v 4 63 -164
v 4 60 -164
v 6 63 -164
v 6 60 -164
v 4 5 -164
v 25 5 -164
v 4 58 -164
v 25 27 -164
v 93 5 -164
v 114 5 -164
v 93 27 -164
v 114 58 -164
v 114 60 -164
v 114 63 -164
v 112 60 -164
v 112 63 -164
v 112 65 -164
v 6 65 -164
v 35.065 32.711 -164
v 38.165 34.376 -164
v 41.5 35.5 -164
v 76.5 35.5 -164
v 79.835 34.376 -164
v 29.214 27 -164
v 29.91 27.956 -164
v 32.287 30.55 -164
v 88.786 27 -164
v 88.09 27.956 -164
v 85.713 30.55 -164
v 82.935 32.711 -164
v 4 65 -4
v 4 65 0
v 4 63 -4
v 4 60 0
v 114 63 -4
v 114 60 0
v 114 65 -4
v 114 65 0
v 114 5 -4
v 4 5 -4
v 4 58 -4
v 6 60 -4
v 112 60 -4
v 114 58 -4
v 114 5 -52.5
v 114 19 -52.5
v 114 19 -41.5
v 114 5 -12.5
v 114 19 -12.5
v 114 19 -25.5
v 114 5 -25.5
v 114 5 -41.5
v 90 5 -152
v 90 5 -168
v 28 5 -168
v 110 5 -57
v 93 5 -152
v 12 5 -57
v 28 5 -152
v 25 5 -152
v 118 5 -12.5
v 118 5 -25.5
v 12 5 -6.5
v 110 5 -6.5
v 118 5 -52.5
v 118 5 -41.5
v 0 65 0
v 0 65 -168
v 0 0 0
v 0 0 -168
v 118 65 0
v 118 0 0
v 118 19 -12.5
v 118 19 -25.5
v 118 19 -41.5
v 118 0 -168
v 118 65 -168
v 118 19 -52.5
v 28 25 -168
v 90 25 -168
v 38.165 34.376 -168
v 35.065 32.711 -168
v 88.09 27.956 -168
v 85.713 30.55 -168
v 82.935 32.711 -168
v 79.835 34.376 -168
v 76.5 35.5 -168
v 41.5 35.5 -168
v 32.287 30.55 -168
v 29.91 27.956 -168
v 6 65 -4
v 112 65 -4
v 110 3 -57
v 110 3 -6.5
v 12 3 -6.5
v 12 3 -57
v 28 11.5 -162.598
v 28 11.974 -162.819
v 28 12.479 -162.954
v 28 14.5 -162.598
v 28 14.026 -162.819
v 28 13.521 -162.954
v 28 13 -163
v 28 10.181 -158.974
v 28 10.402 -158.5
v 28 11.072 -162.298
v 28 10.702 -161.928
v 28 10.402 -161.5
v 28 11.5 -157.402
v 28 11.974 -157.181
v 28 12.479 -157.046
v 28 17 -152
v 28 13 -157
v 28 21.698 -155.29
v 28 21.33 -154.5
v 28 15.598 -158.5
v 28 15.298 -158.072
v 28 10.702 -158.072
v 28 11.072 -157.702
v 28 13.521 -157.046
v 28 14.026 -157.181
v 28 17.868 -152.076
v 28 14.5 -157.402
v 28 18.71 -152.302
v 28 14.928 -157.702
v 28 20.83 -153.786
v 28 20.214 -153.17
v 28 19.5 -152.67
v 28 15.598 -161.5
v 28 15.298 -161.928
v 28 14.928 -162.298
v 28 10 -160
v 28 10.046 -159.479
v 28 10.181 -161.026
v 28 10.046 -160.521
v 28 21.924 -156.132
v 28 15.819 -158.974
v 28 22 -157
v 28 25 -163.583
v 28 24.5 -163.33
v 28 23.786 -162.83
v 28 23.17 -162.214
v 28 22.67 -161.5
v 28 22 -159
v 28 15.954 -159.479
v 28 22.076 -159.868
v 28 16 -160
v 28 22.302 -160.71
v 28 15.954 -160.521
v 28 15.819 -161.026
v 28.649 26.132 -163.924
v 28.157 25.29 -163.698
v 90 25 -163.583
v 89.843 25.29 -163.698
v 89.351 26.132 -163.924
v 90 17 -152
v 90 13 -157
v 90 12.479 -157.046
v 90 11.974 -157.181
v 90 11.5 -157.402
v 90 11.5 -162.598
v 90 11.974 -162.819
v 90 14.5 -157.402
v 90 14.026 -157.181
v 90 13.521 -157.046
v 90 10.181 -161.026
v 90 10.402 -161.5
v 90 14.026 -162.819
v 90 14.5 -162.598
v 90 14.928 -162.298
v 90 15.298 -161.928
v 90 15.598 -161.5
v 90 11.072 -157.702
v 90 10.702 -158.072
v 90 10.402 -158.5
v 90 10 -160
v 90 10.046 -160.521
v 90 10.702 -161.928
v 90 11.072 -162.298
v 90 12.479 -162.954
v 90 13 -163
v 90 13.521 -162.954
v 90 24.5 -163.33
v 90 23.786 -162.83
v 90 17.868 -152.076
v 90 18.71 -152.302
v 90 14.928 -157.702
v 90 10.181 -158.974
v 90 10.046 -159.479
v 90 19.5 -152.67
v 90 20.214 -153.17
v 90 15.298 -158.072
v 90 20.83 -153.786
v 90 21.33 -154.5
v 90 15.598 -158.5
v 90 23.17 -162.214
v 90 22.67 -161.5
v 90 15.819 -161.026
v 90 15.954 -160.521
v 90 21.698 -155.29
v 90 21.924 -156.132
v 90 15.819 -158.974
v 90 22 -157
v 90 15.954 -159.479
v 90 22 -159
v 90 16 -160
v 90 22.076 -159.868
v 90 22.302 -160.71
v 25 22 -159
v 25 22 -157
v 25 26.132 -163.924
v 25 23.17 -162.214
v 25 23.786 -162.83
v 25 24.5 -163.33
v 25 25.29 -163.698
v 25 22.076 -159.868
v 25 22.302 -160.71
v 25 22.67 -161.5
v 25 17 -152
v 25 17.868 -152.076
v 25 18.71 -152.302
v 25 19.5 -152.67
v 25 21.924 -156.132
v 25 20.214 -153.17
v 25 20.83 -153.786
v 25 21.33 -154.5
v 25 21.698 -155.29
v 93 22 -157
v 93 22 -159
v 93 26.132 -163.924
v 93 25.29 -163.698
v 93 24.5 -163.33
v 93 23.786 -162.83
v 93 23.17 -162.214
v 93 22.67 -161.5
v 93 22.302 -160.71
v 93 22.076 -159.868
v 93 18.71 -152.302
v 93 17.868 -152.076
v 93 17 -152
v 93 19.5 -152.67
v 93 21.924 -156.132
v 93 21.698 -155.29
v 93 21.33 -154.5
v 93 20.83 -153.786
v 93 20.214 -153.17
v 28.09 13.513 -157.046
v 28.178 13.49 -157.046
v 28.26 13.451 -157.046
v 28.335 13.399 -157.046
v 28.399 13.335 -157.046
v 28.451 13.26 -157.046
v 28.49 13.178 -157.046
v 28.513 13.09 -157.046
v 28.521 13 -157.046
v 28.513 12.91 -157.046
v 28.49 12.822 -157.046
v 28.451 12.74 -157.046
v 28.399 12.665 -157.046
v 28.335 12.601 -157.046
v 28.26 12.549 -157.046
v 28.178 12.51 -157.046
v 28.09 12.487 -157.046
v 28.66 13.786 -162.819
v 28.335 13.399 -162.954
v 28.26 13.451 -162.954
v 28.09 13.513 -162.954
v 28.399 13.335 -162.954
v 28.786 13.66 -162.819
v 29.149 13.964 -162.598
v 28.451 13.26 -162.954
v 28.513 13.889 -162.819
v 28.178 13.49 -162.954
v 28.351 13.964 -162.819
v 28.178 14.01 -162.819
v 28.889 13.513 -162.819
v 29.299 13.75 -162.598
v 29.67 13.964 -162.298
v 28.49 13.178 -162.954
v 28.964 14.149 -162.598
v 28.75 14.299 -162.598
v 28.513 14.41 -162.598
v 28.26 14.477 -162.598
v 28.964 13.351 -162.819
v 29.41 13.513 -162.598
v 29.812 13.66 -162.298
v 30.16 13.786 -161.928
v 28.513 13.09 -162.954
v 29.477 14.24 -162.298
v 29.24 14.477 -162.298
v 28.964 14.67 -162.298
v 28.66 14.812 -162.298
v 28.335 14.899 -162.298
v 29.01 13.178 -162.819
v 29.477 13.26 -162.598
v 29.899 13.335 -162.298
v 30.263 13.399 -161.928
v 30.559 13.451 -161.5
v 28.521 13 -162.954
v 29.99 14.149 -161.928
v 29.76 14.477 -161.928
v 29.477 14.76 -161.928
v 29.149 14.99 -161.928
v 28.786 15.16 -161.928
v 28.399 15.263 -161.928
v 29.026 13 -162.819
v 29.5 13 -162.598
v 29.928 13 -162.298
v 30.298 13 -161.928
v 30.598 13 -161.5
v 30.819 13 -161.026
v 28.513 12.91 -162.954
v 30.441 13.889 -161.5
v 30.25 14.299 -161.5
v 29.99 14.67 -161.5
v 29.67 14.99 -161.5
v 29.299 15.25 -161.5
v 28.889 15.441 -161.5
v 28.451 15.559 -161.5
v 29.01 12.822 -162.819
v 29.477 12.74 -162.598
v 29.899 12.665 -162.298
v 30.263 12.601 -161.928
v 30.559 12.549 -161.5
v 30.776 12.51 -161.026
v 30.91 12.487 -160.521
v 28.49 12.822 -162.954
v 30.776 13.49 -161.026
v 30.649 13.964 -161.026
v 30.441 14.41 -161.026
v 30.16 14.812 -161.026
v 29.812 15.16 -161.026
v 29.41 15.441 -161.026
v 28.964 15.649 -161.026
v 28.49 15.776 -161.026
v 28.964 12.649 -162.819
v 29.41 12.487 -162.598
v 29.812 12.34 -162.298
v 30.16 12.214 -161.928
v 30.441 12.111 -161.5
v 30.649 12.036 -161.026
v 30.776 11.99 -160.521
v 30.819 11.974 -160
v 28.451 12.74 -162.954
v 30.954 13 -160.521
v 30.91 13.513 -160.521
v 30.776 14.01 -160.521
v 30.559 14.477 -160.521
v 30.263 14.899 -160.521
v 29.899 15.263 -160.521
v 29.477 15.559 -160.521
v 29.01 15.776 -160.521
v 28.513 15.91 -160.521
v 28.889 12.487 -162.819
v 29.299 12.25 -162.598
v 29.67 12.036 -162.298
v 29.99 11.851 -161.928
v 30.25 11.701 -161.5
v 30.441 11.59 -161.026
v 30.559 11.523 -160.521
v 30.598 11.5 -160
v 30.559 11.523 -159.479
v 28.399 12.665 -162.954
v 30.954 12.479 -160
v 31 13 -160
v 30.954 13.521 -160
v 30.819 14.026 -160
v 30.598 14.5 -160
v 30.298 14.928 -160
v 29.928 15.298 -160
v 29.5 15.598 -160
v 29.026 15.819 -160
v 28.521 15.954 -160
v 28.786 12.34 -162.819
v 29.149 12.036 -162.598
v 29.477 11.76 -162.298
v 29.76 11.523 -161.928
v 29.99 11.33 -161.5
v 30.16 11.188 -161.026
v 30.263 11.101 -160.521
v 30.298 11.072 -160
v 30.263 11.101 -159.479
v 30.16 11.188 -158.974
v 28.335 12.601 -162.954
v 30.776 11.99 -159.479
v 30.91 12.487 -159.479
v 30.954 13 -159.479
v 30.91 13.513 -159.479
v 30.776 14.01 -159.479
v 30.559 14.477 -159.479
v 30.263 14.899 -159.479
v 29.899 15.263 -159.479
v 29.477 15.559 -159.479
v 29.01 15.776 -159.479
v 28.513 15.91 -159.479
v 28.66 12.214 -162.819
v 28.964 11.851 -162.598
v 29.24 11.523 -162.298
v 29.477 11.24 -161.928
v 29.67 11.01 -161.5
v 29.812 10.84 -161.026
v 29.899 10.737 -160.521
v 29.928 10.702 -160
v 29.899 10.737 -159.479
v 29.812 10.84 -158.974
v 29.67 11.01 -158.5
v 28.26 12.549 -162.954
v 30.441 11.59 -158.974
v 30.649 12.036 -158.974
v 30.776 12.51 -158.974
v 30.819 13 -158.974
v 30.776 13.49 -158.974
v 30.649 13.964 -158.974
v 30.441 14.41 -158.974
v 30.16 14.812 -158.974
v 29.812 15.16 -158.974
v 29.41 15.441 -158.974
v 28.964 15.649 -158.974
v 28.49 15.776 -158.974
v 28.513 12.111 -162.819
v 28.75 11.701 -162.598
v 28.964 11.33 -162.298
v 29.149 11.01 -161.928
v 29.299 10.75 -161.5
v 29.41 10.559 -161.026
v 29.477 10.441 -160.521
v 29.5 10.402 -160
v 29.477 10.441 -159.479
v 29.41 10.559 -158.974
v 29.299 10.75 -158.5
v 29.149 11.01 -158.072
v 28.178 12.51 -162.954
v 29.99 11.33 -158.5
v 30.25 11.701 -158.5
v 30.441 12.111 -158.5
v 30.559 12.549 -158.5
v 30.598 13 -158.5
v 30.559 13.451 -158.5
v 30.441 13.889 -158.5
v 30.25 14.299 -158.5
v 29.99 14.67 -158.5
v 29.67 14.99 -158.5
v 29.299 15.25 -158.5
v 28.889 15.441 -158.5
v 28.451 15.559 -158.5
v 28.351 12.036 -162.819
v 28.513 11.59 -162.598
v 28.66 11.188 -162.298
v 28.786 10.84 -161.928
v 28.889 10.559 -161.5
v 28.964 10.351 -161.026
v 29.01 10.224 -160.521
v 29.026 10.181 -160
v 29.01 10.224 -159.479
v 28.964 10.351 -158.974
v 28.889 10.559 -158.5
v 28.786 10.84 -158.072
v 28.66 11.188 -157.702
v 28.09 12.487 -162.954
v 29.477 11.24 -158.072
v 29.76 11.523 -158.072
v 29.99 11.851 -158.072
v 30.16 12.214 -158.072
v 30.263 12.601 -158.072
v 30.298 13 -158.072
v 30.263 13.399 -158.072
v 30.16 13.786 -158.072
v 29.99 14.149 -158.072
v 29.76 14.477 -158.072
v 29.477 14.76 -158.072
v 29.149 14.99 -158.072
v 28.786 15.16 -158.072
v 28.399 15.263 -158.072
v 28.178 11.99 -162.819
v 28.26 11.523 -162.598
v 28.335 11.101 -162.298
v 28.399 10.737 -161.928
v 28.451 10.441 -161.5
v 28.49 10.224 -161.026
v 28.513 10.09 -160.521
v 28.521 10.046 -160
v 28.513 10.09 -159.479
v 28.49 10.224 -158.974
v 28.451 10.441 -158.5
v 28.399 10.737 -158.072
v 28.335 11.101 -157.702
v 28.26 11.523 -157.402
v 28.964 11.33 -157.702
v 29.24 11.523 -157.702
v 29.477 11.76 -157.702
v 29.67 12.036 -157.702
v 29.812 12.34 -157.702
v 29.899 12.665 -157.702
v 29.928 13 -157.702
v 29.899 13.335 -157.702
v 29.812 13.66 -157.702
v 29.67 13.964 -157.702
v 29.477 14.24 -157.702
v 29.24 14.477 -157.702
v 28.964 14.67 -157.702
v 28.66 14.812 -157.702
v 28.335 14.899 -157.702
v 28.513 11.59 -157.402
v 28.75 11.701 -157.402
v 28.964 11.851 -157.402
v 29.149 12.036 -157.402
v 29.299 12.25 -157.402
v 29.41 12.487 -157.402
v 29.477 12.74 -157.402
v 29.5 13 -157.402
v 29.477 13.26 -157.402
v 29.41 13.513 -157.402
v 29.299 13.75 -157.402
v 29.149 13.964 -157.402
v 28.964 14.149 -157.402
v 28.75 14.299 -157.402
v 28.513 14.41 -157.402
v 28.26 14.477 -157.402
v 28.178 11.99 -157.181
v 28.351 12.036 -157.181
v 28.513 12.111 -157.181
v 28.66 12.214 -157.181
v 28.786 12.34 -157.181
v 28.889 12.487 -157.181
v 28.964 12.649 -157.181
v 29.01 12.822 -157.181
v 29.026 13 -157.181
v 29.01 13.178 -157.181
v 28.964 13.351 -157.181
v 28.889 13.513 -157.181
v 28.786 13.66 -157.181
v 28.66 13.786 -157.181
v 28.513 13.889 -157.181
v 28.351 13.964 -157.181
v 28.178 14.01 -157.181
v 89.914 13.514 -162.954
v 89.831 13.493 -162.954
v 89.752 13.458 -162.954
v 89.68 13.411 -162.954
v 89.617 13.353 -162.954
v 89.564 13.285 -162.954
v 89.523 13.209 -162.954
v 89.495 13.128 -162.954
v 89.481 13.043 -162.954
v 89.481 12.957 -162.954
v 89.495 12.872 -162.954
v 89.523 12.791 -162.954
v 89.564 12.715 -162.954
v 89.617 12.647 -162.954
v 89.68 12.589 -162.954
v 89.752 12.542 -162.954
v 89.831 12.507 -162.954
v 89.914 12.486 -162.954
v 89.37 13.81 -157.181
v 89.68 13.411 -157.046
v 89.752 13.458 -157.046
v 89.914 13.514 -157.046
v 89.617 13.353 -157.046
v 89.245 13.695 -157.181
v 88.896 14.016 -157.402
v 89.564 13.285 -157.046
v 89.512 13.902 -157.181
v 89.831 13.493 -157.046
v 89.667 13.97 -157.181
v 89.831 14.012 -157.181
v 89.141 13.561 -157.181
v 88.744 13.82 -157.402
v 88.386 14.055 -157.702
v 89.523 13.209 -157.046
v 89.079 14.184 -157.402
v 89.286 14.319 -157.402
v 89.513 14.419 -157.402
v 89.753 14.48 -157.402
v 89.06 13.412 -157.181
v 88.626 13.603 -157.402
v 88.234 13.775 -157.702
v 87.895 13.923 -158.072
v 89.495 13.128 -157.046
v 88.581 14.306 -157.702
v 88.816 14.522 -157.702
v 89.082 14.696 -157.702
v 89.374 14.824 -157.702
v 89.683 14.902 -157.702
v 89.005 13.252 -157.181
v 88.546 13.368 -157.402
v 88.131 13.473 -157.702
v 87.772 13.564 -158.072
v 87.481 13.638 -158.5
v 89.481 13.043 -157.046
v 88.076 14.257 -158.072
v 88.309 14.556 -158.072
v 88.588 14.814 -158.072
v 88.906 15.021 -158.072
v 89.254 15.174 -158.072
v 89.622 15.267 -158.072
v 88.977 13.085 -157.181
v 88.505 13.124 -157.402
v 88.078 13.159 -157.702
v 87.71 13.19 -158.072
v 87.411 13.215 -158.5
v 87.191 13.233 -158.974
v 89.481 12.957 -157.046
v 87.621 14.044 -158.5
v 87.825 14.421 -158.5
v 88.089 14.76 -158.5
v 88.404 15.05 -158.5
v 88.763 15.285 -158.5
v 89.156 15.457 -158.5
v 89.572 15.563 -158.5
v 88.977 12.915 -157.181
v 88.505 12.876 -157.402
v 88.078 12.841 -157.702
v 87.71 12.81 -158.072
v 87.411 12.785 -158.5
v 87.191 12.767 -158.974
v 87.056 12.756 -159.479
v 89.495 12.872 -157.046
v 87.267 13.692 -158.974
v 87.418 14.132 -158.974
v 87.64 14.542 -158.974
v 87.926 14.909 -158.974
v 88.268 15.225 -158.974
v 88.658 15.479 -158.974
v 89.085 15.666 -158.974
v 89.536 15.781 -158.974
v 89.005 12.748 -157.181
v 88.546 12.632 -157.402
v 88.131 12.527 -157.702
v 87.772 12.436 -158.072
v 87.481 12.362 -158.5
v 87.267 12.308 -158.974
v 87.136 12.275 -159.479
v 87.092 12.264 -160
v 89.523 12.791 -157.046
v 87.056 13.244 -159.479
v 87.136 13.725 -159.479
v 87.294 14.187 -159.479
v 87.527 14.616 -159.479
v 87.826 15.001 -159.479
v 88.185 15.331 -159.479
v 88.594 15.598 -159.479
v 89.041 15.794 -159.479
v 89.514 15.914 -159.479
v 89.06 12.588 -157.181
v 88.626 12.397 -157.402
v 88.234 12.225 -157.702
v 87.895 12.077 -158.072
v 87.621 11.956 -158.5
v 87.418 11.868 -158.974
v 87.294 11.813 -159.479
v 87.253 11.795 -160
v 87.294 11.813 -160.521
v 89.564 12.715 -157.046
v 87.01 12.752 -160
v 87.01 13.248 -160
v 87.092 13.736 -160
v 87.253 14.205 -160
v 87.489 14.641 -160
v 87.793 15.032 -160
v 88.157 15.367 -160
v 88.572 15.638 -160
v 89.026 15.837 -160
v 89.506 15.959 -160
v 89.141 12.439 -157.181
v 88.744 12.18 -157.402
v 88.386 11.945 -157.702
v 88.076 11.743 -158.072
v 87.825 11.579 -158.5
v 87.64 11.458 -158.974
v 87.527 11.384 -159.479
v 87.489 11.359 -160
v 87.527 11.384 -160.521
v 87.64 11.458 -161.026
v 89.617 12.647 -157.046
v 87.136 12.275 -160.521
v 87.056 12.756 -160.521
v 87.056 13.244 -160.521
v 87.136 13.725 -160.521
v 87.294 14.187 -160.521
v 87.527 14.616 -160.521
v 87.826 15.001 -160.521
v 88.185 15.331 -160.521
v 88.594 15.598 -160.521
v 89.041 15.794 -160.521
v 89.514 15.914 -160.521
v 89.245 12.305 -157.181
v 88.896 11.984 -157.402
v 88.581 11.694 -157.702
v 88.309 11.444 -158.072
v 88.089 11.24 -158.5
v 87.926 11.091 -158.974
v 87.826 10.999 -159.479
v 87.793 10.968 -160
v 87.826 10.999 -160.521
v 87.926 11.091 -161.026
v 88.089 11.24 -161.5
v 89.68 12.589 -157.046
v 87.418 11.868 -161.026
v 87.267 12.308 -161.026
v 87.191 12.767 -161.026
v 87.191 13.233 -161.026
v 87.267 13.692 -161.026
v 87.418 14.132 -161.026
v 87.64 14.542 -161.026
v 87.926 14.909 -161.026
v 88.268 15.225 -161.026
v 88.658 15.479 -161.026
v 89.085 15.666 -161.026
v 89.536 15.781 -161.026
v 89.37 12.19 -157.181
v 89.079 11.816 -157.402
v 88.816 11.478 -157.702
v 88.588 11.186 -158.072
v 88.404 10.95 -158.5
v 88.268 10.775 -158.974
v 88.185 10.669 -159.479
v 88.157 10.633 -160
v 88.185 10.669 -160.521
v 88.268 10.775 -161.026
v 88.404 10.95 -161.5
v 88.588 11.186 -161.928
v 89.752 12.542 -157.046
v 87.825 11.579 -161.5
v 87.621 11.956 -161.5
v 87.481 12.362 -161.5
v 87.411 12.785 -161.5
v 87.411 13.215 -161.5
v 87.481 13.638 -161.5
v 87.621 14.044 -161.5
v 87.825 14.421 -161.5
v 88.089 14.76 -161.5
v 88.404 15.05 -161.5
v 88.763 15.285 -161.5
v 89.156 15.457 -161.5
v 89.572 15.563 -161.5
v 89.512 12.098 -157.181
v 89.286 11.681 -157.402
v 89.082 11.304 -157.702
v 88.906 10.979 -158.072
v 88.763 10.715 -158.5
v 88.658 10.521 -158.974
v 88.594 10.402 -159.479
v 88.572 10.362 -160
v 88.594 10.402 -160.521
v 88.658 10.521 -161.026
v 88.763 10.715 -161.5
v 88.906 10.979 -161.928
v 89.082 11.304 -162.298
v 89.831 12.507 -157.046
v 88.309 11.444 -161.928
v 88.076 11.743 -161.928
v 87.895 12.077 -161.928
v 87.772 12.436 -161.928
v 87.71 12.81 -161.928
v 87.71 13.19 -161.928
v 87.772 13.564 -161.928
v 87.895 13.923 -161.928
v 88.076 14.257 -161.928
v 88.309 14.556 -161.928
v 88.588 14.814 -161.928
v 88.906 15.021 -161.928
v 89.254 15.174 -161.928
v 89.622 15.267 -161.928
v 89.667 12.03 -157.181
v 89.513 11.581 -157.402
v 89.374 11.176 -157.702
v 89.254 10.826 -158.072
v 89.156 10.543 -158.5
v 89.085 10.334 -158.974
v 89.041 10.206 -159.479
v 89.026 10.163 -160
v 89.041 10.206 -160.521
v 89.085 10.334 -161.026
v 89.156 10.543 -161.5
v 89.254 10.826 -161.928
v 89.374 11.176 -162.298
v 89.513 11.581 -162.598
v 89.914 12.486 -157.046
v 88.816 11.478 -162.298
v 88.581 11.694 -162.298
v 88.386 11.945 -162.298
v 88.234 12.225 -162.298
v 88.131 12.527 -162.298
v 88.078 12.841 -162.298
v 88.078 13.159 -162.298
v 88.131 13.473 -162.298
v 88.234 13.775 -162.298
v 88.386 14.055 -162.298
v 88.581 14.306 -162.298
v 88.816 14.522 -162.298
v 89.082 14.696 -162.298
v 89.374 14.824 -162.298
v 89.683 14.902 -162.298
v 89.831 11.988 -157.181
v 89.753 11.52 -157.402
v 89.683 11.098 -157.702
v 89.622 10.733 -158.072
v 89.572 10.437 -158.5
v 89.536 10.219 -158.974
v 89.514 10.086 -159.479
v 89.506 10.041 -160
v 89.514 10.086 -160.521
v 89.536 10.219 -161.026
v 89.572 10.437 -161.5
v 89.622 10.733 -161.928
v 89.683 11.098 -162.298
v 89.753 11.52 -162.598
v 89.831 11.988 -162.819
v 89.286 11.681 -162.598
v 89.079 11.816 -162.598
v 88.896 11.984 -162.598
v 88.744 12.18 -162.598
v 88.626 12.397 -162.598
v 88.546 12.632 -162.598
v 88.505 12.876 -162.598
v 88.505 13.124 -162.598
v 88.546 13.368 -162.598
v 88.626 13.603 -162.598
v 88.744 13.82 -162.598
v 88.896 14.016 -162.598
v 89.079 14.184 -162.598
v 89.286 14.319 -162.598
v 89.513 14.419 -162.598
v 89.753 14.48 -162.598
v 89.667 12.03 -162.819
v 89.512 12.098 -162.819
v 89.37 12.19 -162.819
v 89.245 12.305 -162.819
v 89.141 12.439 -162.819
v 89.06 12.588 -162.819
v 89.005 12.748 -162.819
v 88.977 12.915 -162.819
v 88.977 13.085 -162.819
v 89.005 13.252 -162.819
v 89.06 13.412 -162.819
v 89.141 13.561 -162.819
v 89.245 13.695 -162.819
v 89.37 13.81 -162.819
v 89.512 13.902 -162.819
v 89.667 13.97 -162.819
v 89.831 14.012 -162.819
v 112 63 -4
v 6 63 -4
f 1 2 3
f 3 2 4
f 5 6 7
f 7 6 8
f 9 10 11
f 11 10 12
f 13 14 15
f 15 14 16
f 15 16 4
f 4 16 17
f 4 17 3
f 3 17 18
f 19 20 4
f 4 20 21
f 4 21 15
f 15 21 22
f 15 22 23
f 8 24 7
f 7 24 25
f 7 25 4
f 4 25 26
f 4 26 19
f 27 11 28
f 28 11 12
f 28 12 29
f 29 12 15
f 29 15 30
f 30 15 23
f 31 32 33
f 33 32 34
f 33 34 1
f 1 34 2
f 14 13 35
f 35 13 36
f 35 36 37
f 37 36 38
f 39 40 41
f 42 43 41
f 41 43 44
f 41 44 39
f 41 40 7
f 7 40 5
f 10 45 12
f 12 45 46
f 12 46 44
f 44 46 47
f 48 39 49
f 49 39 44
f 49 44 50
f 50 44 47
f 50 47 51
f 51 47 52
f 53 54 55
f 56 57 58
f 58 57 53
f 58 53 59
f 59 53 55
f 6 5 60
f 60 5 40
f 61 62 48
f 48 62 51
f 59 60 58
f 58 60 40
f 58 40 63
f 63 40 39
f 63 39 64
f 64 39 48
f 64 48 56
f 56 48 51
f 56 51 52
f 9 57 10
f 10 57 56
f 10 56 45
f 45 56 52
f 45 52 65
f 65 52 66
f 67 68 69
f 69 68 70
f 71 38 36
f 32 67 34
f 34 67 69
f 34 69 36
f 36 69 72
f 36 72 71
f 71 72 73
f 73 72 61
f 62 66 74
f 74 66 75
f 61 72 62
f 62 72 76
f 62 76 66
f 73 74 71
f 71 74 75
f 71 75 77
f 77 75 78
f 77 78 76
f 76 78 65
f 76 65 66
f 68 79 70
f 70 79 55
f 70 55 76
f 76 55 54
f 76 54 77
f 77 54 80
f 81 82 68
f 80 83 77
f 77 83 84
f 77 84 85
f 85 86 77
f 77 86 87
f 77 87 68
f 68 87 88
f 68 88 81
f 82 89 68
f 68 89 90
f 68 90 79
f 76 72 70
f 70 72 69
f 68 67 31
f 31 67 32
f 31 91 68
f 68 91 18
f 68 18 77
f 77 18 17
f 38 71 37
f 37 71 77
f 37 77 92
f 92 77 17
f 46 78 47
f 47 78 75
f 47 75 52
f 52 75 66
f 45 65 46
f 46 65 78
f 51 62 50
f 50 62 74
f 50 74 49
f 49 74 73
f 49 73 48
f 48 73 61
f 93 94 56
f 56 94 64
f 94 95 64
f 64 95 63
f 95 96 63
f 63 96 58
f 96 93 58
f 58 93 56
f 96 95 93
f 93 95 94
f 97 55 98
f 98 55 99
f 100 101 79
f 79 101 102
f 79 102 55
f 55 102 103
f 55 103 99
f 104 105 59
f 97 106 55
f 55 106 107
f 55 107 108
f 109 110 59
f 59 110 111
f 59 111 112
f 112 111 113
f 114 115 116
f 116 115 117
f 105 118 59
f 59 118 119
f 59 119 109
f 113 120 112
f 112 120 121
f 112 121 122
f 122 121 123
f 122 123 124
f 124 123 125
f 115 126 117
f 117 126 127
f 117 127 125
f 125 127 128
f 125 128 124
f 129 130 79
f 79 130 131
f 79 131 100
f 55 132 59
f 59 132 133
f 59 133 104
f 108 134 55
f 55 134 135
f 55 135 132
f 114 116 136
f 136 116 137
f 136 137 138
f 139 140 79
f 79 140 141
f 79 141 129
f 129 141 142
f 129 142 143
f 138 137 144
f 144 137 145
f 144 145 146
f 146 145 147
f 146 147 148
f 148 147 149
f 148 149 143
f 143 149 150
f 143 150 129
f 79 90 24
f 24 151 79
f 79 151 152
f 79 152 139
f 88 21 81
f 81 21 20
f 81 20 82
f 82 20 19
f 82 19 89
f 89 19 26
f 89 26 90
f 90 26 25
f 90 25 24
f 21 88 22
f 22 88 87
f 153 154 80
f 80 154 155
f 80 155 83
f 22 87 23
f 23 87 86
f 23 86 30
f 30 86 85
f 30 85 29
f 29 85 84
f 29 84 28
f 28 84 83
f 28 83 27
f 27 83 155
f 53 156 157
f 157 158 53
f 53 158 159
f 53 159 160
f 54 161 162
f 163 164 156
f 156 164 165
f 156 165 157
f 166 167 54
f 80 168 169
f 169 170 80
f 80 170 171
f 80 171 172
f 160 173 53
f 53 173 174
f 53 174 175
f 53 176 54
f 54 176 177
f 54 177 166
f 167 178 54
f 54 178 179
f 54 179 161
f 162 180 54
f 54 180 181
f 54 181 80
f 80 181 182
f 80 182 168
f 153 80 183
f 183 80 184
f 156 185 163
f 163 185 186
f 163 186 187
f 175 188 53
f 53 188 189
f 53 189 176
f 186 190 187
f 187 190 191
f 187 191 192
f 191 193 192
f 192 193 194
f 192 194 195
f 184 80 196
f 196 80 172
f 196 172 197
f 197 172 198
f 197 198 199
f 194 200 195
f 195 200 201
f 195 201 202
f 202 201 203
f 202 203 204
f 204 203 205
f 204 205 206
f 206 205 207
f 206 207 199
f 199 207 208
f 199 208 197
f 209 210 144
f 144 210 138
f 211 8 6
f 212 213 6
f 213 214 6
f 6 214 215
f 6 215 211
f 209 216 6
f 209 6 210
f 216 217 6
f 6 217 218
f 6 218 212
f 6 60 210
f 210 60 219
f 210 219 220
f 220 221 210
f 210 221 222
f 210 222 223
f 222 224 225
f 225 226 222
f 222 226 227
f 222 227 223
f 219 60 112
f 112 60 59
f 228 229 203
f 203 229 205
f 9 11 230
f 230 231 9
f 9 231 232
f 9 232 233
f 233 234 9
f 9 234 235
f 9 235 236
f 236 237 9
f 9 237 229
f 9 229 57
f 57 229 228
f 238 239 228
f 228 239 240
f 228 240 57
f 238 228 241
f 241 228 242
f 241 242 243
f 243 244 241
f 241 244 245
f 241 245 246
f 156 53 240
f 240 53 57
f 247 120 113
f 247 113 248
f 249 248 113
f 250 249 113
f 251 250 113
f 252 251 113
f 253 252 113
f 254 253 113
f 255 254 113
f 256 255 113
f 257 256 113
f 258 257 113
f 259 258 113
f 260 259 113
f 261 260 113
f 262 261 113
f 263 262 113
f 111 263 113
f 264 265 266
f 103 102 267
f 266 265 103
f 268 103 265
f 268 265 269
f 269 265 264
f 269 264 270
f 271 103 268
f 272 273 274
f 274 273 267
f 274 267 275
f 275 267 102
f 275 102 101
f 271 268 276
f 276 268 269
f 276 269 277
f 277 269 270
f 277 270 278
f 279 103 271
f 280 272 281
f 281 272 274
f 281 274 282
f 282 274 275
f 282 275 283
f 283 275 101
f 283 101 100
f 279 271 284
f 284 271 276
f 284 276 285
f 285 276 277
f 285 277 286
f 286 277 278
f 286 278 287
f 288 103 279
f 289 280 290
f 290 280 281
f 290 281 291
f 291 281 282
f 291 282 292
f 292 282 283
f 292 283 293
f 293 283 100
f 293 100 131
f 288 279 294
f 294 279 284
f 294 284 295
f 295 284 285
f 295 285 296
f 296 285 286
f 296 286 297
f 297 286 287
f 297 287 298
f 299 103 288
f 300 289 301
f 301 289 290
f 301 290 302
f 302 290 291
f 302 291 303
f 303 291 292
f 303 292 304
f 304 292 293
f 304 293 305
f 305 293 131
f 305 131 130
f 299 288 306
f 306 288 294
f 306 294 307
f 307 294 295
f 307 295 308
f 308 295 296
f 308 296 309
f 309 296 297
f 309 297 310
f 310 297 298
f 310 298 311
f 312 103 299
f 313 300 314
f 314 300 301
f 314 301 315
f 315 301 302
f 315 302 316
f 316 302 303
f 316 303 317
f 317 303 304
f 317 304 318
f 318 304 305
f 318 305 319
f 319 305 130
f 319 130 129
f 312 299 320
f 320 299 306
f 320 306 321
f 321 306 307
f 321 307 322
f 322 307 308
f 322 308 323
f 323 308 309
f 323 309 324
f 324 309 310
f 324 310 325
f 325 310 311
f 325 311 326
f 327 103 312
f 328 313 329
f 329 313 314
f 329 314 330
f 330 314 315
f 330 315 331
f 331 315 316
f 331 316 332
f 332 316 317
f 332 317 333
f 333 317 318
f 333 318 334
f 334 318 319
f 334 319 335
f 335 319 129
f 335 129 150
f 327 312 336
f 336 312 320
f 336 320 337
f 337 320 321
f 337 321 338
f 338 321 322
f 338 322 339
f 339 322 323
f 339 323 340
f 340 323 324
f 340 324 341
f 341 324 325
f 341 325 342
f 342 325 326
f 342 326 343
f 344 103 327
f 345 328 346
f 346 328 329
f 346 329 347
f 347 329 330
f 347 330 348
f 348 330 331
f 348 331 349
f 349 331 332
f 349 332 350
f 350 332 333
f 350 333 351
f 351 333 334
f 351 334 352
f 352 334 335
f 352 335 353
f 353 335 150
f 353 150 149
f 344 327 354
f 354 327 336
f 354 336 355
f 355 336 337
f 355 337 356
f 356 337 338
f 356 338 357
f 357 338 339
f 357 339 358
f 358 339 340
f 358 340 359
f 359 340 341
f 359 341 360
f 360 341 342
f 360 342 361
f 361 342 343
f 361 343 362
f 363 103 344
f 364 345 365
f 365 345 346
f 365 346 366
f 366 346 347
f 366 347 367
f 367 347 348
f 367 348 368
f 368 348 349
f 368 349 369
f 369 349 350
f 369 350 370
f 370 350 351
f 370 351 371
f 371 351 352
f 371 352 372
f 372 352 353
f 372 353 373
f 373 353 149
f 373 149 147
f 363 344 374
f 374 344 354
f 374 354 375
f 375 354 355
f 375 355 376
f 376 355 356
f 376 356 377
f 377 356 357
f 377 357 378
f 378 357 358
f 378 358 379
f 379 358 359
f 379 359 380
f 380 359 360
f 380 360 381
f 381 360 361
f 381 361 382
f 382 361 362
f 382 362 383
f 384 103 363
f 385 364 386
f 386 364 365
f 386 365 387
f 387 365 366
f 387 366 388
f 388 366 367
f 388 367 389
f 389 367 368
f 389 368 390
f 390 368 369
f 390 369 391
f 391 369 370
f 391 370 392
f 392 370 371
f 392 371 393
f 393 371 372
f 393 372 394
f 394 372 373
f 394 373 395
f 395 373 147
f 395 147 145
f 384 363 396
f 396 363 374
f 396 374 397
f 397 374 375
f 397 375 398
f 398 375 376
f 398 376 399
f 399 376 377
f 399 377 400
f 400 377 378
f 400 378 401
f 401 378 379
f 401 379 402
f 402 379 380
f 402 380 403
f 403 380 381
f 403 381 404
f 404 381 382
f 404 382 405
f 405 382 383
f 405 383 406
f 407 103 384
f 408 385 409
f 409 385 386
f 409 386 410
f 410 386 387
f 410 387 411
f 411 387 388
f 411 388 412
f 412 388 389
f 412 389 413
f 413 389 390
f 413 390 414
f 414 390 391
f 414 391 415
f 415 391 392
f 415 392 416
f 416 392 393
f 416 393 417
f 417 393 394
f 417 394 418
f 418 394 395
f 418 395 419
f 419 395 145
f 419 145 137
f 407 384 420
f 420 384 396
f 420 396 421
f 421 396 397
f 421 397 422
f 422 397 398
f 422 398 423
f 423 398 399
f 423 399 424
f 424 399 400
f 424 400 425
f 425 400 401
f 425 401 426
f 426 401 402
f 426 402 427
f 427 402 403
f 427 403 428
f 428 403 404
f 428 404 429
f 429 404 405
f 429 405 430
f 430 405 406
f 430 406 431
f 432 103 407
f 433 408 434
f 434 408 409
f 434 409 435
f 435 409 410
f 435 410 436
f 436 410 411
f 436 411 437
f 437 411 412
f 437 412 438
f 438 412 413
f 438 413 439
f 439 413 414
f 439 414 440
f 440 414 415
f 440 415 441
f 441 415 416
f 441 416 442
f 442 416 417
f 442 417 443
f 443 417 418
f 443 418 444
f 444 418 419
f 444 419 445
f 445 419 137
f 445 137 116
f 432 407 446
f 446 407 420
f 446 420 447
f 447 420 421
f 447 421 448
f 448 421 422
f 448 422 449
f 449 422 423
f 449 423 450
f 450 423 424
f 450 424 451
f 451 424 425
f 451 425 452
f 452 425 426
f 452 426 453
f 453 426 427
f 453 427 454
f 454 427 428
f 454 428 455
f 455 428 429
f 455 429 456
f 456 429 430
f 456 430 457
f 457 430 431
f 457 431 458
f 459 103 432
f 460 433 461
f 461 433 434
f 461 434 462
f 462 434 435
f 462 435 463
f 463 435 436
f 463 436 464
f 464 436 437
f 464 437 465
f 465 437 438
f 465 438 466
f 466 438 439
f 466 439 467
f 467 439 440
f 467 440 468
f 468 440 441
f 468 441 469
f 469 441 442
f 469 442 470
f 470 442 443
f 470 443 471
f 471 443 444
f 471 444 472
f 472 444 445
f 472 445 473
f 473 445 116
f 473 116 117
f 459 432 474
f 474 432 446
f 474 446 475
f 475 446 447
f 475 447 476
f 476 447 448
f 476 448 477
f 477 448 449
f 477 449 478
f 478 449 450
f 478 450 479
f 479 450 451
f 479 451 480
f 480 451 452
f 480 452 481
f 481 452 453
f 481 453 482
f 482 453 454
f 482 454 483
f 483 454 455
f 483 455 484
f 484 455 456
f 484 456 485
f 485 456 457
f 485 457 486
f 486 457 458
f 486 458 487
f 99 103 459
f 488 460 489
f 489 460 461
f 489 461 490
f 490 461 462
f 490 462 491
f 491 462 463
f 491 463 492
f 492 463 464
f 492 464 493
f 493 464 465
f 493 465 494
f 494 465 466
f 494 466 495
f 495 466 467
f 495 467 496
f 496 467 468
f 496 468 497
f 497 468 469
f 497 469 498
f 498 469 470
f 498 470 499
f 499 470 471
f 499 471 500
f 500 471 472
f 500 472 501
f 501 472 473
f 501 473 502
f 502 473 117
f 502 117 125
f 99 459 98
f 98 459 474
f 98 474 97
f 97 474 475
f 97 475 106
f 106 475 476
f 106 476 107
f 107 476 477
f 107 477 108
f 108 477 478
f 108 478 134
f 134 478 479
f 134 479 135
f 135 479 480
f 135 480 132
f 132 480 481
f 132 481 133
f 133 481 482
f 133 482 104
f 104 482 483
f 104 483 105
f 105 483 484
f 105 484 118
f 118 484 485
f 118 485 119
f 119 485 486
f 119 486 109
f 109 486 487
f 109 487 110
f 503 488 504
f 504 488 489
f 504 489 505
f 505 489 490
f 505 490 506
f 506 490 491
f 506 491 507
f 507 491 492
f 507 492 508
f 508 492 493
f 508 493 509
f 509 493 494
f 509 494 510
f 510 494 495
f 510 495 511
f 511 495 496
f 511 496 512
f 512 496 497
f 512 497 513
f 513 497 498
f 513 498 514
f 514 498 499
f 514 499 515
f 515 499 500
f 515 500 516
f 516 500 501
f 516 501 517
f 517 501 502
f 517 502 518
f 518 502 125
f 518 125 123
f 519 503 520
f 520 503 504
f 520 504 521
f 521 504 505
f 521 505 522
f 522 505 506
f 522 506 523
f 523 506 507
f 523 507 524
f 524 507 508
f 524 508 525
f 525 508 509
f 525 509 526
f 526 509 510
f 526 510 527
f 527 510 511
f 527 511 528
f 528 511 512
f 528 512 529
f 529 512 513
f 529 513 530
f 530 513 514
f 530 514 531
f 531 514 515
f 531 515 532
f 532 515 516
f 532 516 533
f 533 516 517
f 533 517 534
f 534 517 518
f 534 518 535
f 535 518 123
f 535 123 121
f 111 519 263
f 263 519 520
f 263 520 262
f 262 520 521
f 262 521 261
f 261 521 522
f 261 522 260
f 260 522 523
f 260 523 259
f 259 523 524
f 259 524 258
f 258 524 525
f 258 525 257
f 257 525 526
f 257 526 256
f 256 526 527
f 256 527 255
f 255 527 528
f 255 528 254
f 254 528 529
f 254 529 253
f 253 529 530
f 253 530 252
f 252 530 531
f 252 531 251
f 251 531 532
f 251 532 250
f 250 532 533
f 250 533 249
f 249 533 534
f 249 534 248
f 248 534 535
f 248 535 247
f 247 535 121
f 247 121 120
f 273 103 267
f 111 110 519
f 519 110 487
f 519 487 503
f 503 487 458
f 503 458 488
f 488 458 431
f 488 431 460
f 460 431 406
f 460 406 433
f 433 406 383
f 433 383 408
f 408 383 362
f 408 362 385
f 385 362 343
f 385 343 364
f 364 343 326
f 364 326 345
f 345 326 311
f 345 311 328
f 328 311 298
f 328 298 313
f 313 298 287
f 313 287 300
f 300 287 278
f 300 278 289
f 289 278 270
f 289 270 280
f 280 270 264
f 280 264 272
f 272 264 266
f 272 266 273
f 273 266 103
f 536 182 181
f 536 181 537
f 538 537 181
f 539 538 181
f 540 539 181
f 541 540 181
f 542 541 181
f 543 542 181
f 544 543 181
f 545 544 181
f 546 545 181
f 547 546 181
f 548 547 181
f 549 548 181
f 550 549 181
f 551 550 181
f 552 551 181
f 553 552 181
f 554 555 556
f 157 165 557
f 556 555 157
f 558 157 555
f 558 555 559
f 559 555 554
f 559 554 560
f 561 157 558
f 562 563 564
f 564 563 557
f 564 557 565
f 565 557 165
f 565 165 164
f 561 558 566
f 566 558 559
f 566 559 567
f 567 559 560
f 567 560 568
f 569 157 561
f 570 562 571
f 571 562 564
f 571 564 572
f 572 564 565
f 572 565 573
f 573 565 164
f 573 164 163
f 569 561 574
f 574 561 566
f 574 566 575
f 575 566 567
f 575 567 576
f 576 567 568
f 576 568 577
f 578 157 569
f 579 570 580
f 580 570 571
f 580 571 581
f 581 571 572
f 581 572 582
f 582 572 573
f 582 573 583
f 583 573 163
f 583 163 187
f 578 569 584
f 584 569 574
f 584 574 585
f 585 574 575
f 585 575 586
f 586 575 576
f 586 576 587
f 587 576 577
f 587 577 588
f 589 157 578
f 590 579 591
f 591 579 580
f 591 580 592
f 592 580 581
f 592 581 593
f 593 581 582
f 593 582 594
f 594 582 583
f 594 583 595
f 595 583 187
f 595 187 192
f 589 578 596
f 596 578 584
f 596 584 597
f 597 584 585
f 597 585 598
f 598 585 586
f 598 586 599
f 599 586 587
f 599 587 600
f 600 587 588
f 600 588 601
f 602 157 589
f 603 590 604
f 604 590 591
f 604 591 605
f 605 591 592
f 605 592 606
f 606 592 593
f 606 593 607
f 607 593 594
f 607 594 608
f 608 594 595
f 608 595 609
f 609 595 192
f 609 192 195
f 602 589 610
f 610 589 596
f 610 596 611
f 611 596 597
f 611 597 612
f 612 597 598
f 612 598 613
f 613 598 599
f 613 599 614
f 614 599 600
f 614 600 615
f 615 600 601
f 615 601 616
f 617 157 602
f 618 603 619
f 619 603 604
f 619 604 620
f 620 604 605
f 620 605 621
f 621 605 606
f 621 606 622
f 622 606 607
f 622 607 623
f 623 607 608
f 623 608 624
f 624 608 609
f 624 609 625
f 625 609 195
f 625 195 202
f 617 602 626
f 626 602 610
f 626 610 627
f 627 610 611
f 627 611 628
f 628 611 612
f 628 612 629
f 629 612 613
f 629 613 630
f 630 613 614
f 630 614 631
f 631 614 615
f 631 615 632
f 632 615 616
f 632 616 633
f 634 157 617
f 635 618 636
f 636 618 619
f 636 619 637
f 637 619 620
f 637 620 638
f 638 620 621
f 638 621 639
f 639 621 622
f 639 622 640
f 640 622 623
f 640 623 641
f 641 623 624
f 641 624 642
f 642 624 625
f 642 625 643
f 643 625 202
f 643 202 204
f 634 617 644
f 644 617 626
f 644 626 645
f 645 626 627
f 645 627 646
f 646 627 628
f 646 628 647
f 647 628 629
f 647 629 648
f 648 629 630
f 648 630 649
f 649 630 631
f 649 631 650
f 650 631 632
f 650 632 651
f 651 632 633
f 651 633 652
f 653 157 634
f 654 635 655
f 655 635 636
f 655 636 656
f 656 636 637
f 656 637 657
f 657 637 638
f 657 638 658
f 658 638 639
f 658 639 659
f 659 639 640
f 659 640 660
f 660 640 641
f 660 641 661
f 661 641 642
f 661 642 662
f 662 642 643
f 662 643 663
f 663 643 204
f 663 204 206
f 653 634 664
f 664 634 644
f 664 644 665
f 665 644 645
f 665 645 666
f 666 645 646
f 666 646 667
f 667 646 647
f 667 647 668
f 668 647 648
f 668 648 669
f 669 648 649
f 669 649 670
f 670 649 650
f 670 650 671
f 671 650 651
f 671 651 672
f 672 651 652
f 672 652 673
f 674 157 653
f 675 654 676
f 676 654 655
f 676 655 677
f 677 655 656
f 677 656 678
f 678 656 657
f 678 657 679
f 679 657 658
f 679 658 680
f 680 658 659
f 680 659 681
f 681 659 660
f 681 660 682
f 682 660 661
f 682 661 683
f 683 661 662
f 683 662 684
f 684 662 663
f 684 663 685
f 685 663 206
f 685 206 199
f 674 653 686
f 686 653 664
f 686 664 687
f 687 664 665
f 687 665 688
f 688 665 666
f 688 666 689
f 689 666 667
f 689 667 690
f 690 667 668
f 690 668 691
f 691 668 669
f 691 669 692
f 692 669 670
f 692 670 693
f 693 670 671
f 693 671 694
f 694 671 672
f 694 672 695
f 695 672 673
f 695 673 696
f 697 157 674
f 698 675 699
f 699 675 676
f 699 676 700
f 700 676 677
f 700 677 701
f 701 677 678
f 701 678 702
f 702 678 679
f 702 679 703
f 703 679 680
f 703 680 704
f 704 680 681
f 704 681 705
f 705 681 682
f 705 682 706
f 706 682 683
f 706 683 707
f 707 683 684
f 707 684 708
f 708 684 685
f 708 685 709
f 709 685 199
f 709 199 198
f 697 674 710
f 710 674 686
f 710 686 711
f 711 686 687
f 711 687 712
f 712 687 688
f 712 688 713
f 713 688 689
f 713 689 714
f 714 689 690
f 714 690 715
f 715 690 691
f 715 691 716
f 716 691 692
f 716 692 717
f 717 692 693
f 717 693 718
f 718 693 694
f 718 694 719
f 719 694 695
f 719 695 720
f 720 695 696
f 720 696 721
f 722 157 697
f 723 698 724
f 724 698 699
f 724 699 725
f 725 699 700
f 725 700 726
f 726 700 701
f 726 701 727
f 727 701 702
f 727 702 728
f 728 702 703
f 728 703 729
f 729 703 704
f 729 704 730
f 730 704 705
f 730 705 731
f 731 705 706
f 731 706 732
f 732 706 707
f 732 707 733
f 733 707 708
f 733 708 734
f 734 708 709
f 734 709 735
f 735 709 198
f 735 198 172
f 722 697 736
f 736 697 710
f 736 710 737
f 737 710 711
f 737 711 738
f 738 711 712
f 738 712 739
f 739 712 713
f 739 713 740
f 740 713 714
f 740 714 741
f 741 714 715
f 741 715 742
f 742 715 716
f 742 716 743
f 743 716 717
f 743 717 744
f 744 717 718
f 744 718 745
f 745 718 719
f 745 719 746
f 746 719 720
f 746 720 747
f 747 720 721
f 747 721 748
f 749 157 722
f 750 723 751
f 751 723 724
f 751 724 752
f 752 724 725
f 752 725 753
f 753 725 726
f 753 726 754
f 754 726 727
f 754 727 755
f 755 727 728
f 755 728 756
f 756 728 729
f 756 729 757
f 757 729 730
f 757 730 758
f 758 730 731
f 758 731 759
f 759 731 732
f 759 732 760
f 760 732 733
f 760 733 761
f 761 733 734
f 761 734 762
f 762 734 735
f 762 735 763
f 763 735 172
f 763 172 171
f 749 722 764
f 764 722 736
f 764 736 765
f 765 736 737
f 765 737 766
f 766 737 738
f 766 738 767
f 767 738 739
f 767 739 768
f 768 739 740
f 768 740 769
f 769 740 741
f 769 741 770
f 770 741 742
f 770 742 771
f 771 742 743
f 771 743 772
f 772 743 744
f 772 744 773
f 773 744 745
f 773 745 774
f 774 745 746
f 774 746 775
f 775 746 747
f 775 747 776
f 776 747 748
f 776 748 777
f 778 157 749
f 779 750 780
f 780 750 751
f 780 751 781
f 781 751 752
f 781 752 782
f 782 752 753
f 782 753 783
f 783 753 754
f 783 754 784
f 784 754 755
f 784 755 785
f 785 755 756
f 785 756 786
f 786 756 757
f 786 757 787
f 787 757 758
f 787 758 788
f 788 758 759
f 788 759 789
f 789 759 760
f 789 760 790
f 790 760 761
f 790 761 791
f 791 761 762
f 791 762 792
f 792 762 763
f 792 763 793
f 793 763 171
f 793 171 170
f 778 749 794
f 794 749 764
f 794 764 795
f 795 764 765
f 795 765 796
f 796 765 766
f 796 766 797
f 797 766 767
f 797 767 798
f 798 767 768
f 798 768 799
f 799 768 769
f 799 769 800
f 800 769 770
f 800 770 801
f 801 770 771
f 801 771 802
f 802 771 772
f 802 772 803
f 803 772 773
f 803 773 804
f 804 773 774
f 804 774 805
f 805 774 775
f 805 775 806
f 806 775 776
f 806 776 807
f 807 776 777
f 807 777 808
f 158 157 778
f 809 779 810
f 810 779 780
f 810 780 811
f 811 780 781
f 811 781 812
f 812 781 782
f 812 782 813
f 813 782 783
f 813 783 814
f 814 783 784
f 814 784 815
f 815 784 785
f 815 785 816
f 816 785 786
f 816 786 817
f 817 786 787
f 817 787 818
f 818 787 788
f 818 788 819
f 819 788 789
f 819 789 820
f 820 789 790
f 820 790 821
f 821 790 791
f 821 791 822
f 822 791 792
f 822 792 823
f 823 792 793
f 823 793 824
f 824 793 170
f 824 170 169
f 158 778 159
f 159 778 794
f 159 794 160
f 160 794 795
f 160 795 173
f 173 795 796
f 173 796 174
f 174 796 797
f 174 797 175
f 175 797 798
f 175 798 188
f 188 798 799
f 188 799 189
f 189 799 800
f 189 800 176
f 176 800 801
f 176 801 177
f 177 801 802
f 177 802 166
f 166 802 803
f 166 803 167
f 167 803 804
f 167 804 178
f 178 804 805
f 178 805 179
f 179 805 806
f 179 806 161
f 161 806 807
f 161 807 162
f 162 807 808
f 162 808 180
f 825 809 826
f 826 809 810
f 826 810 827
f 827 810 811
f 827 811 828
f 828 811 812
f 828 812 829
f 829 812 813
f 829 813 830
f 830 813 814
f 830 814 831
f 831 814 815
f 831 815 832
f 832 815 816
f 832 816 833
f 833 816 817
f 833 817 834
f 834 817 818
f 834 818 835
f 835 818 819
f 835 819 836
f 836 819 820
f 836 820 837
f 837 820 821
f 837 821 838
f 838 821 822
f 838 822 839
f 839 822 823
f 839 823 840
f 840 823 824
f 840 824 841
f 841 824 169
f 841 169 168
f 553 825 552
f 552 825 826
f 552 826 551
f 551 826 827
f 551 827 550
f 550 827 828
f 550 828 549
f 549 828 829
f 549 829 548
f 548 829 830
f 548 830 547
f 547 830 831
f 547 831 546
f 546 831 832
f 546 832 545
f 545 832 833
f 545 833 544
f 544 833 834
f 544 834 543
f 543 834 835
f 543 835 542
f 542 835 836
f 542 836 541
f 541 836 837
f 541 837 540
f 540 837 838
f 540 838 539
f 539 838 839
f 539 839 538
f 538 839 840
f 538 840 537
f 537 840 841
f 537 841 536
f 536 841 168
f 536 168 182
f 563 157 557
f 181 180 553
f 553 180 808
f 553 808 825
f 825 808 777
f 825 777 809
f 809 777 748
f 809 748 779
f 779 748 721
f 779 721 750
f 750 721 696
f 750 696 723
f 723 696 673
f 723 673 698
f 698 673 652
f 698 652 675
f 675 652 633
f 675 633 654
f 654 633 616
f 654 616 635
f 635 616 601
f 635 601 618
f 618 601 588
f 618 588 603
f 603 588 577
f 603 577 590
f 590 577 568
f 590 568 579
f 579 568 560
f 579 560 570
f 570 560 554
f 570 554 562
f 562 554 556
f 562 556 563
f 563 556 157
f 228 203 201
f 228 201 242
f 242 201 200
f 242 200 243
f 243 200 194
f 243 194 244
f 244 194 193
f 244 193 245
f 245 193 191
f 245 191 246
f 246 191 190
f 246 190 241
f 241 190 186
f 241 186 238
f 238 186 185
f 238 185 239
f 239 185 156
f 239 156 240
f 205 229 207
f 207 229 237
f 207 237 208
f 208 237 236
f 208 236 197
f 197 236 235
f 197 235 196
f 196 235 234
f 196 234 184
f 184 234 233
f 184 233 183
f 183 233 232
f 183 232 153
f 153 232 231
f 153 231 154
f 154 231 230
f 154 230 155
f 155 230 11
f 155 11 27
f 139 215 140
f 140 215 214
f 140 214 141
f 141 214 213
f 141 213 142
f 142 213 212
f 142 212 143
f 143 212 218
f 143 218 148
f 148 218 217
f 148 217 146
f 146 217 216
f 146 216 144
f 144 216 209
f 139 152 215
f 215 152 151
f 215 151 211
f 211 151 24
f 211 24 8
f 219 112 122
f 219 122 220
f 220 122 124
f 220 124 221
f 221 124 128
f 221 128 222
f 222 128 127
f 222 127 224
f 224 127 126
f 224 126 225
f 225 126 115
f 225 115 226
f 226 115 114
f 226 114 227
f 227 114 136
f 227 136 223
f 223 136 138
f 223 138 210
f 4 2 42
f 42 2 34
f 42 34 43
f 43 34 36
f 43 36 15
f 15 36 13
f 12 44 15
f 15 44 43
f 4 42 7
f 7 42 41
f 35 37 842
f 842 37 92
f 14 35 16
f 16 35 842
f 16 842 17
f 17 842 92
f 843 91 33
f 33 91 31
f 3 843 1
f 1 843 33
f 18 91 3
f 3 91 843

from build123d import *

# Parameters (mm, degrees)
SKETCH1_W           = 118
SKETCH1_H           = 168
BOSS_EXTRUDE1_DEPTH = 5
SKETCH2_W           = 118
SKETCH2_H           = 168
SKETCH2_W_2         = 110
SKETCH2_H_2         = 160
BOSS_EXTRUDE2_DEPTH = 60
SKETCH3_W           = 13
SKETCH3_H           = 14
SKETCH3_W_2         = 11
CUT_EXTRUDE1_DEPTH  = 10
SKETCH4_W           = 98
SKETCH4_H           = 50.5
CUT_EXTRUDE2_DEPTH  = 2
CUT_EXTRUDE3_DEPTH  = 10
SKETCH6_W           = 3
SKETCH6_H           = 17
BOSS_EXTRUDE3_DEPTH = 12
REVOLVE2_ANGLE      = 180
FILLET1_R           = 5
SKETCH10_W          = 110
SKETCH10_H          = 5
CUT_EXTRUDE4_DEPTH  = 12
SKETCH11_W          = 2
SKETCH11_H          = 2
BOSS_EXTRUDE4_DEPTH = 160


with BuildPart() as part:
    # Sketch1 → Boss-Extrude1 (new body)
    with BuildSketch(Plane(origin=(0, 0, 0), x_dir=(1, 0, 0), z_dir=(0, 1, 0))):
        with Locations((59, 84)):
            Rectangle(SKETCH1_W, SKETCH1_H)
    extrude(amount=BOSS_EXTRUDE1_DEPTH)

    # Sketch2 → Boss-Extrude2 (add)
    with BuildSketch(Plane(origin=(0, 5, 0), x_dir=(1, 0, 0), z_dir=(0, 1, 0))):
        with Locations((59, 84)):
            Rectangle(SKETCH2_W, SKETCH2_H)
        with Locations((59, 84)):
            Rectangle(SKETCH2_W_2, SKETCH2_H_2, mode=Mode.SUBTRACT)
    extrude(amount=BOSS_EXTRUDE2_DEPTH)

    # Sketch3 → Cut-Extrude1 (cut)
    with BuildSketch(Plane.ZY.offset(-114)):
        with Locations((-19, 12)):
            Rectangle(SKETCH3_W, SKETCH3_H)
        with Locations((-47, 12)):
            Rectangle(SKETCH3_W_2, SKETCH3_H)
    extrude(amount=-CUT_EXTRUDE1_DEPTH, mode=Mode.SUBTRACT)

    # Sketch4 → Cut-Extrude2 (cut)
    with BuildSketch(Plane(origin=(0, 5, 0), x_dir=(1, 0, 0), z_dir=(0, 1, 0))):
        with Locations((61, 31.75)):
            Rectangle(SKETCH4_W, SKETCH4_H)
    extrude(amount=-CUT_EXTRUDE2_DEPTH, mode=Mode.SUBTRACT)

    # Sketch5 → Cut-Extrude3 (cut)
    with BuildSketch(Plane.XY.offset(-164)):
        with BuildLine():
            Line((59, 5), (90, 5))
            Line((90, 5), (90, 25))
            ThreePointArc((90, 25), (84.369036145, 31.688760758), (76.5, 35.5))
            Line((76.5, 35.5), (41.5, 35.5))
            ThreePointArc((41.5, 35.5), (33.630963855, 31.688760758), (28, 25))
            Line((28, 25), (28, 5))
            Line((28, 5), (59, 5))
        make_face()
    extrude(amount=-CUT_EXTRUDE3_DEPTH, mode=Mode.SUBTRACT)

    # Sketch6 → Boss-Extrude3 (add)
    with BuildSketch(Plane.XY.offset(-164)):
        with Locations((26.5, 13.5)):
            Rectangle(SKETCH6_W, SKETCH6_H)
        with Locations((91.5, 13.5)):
            Rectangle(SKETCH6_W, SKETCH6_H)
    extrude(amount=BOSS_EXTRUDE3_DEPTH)

    # Sketch7 → Revolve1 (revolve)
    with BuildSketch(Plane(origin=(28, 0, 0), x_dir=(0, 0, -1), z_dir=(1, 0, 0))):
        with BuildLine():
            Line((157, 13), (163, 13))
            ThreePointArc((163, 13), (160, 10), (157, 13))
        make_face()
    revolve(axis=Axis((28, 13, -157), (0, 0, -1)))

    # Sketch9 → Revolve2 (revolve)
    with BuildSketch(Plane.ZY.offset(-90)):
        with BuildLine():
            Line((-163, 13), (-157, 13))
            ThreePointArc((-157, 13), (-160, 10), (-163, 13))
        make_face()
    revolve(axis=Axis((90, 13, -163), (0, 0, -1)), revolution_arc=REVOLVE2_ANGLE)

    # Fillet1
    fillet1_edges = [part.edges().sort_by_distance(p)[0] for p in [
        (91.5, 22, -152),
        (91.5, 22, -164),
        (26.5, 22, -164),
        (26.5, 22, -152),
    ]]
    fillet(fillet1_edges, radius=FILLET1_R)

    # Sketch10 → Cut-Extrude4 (cut)
    with BuildSketch(Plane(origin=(0, 0, -4), x_dir=(-1, 0, 0), z_dir=(0, 0, -1))):
        with Locations((-59, 62.5)):
            Rectangle(SKETCH10_W, SKETCH10_H)
    extrude(amount=-CUT_EXTRUDE4_DEPTH, mode=Mode.SUBTRACT)

    # Sketch11 → Boss-Extrude4 (add)
    with BuildSketch(Plane(origin=(0, 0, -4), x_dir=(-1, 0, 0), z_dir=(0, 0, -1))):
        Polygon((-114, 60), (-114, 58), (-112, 60), align=None)
        Polygon((-4, 60), (-4, 58), (-6, 60), align=None)
        with Locations((-113, 64)):
            Rectangle(SKETCH11_W, SKETCH11_H)
        with Locations((-5, 64)):
            Rectangle(SKETCH11_W, SKETCH11_H)
    extrude(amount=BOSS_EXTRUDE4_DEPTH)


solid = part.part
